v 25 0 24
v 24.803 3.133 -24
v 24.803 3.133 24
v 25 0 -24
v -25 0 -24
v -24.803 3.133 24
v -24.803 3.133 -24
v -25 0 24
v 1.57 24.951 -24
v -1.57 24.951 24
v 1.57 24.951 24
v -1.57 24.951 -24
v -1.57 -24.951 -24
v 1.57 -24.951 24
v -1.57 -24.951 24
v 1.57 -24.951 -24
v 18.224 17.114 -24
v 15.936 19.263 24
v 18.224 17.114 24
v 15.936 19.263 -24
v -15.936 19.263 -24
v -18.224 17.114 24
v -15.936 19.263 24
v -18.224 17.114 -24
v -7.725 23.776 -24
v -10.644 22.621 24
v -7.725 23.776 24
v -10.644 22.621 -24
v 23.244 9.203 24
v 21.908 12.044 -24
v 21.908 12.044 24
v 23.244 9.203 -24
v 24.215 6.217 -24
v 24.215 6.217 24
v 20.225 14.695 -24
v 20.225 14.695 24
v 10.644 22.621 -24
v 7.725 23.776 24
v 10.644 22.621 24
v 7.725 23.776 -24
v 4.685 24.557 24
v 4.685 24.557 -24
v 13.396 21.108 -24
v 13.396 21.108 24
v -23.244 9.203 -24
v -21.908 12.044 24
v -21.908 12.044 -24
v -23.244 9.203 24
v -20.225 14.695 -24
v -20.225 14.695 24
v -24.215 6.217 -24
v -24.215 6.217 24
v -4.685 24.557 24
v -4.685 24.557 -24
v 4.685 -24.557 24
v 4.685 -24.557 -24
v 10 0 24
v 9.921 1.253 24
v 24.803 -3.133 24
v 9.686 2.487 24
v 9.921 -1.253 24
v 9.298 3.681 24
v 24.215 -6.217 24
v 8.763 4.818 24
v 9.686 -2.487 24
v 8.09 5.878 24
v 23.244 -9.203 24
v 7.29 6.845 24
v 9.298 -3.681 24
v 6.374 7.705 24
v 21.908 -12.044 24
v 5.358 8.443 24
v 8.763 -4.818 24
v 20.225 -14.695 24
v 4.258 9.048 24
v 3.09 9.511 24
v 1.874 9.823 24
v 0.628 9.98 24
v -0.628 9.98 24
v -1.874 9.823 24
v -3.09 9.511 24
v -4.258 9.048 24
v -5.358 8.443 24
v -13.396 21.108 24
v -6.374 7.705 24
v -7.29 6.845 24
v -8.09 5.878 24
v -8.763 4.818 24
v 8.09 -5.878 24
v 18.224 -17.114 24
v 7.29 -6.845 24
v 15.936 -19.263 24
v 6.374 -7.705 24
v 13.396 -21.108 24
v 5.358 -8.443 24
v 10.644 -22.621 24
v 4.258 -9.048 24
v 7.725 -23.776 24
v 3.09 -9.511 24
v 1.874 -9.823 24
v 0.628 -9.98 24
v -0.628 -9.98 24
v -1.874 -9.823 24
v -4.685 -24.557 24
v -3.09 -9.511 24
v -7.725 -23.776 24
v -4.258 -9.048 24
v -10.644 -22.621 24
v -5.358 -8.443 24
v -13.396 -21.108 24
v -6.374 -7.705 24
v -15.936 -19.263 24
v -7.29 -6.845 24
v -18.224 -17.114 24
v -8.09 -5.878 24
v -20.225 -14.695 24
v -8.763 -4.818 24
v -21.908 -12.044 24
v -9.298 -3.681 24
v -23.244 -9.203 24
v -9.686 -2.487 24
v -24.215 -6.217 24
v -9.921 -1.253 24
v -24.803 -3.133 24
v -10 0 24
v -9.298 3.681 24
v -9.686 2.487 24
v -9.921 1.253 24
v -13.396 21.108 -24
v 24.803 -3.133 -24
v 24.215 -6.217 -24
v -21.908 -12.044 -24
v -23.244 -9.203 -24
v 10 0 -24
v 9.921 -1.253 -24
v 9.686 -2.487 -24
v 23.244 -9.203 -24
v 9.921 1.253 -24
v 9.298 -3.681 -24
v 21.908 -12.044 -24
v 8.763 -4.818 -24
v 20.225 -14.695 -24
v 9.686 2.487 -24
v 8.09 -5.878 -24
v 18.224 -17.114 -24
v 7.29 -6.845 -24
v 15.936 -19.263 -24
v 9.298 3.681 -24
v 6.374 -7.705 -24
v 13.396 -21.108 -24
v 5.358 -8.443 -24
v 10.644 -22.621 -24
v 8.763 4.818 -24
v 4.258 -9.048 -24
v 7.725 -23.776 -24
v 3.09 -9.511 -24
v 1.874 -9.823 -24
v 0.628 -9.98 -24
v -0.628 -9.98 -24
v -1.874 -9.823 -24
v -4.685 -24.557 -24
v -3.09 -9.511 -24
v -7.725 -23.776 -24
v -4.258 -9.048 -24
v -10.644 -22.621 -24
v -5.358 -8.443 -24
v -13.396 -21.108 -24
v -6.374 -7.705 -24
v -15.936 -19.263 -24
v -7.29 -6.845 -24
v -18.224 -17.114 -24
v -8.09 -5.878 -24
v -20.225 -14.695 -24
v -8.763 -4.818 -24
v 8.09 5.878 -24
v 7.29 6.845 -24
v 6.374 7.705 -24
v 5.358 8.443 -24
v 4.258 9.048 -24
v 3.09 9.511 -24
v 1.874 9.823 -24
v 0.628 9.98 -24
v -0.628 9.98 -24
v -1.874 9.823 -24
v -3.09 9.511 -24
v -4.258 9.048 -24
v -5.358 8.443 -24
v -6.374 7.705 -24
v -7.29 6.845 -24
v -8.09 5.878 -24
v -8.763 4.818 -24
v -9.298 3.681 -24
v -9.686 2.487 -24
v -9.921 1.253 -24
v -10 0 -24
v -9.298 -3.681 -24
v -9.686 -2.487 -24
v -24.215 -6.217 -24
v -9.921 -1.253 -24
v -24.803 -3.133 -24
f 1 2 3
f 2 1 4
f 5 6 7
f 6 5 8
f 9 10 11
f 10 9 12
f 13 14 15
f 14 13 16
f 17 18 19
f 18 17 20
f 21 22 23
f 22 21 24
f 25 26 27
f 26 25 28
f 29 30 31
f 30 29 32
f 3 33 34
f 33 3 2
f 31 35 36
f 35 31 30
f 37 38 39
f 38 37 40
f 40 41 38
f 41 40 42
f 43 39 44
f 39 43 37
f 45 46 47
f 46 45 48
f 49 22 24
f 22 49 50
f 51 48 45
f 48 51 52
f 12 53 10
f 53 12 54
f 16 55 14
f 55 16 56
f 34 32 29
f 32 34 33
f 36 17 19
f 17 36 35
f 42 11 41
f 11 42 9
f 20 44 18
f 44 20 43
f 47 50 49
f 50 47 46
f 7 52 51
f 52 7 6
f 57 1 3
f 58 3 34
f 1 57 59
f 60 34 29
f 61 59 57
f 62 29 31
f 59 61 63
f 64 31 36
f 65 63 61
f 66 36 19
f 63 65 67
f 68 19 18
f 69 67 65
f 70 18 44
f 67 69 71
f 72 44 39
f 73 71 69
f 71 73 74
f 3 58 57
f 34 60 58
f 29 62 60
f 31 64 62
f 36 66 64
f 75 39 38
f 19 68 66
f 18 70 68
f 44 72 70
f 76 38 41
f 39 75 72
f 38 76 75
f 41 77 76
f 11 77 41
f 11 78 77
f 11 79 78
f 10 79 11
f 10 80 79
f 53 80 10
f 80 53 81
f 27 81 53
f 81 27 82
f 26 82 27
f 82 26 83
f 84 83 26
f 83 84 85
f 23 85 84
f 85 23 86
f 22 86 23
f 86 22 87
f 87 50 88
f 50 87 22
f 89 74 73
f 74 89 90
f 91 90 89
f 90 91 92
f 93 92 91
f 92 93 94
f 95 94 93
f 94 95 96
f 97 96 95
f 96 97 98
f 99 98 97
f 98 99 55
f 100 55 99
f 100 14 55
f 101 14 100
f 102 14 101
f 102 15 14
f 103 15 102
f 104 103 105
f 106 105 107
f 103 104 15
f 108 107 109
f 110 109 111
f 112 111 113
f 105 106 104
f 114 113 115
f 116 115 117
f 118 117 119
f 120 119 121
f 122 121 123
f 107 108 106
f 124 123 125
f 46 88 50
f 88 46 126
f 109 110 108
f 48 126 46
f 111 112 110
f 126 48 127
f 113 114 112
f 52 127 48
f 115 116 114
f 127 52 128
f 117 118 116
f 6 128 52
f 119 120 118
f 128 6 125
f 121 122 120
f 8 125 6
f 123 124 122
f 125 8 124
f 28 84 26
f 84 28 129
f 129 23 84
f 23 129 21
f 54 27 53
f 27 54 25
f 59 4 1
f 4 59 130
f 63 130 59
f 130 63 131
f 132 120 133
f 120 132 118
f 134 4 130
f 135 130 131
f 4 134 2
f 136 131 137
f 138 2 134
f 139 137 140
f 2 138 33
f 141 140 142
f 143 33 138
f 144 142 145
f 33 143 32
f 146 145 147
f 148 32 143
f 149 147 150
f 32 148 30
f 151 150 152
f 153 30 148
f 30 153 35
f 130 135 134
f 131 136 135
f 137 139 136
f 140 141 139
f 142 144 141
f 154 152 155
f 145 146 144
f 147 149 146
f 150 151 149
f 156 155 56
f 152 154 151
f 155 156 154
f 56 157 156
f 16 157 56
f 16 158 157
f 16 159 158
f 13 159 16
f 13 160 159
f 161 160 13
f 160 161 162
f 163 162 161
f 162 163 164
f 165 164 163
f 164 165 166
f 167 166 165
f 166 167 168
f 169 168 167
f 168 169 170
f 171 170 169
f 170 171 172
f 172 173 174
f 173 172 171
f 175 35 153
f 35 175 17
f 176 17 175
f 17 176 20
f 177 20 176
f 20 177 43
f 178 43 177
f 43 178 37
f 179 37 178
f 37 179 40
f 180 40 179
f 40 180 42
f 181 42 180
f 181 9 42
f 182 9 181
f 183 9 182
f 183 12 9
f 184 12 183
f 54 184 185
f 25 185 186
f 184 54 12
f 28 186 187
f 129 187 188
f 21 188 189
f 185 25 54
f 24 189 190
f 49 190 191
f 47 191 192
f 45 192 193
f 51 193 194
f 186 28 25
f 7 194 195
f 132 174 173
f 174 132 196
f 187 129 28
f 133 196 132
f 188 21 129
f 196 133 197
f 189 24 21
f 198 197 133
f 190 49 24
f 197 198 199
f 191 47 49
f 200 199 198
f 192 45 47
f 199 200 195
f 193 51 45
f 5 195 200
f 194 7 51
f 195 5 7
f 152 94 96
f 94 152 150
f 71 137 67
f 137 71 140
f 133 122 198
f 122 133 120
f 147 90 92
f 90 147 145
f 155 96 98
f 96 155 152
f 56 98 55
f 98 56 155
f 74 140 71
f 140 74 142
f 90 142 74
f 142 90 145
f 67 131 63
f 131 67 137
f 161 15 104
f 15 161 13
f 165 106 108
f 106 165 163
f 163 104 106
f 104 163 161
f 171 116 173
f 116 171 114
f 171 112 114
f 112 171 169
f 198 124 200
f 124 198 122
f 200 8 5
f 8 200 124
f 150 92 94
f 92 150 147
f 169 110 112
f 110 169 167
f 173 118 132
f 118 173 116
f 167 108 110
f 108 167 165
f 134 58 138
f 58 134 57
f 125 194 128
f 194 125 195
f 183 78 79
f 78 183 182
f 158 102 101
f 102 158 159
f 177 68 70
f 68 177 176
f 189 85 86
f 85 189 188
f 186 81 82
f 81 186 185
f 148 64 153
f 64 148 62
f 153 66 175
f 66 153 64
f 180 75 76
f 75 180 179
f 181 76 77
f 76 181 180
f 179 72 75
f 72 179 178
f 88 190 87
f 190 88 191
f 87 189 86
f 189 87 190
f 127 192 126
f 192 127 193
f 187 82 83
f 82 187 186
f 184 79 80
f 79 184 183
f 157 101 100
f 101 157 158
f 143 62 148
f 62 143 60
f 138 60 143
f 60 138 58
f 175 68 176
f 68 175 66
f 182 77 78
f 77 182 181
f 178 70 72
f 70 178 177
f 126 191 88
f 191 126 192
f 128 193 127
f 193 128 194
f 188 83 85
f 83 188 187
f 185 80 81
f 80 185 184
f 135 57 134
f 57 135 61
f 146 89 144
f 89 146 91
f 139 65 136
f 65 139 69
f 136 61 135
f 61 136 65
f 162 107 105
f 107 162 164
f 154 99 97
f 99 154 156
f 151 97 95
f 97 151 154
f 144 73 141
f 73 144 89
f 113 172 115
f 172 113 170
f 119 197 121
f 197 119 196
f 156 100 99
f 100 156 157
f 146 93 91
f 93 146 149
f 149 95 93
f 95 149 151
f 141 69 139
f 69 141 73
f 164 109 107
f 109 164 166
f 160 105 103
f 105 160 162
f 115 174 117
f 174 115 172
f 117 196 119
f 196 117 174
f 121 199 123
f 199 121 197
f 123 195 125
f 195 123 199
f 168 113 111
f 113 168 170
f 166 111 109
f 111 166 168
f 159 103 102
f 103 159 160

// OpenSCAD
$fn = 50;


difference() {
	union() {
		translate(v = [0, 0, -24.0000000000]) {
			cylinder(h = 48, r = 25.0000000000);
		}
	}
	union() {
		translate(v = [0, 0, -100.0000000000]) {
			cylinder(h = 200, r = 10);
		}
	}
}
